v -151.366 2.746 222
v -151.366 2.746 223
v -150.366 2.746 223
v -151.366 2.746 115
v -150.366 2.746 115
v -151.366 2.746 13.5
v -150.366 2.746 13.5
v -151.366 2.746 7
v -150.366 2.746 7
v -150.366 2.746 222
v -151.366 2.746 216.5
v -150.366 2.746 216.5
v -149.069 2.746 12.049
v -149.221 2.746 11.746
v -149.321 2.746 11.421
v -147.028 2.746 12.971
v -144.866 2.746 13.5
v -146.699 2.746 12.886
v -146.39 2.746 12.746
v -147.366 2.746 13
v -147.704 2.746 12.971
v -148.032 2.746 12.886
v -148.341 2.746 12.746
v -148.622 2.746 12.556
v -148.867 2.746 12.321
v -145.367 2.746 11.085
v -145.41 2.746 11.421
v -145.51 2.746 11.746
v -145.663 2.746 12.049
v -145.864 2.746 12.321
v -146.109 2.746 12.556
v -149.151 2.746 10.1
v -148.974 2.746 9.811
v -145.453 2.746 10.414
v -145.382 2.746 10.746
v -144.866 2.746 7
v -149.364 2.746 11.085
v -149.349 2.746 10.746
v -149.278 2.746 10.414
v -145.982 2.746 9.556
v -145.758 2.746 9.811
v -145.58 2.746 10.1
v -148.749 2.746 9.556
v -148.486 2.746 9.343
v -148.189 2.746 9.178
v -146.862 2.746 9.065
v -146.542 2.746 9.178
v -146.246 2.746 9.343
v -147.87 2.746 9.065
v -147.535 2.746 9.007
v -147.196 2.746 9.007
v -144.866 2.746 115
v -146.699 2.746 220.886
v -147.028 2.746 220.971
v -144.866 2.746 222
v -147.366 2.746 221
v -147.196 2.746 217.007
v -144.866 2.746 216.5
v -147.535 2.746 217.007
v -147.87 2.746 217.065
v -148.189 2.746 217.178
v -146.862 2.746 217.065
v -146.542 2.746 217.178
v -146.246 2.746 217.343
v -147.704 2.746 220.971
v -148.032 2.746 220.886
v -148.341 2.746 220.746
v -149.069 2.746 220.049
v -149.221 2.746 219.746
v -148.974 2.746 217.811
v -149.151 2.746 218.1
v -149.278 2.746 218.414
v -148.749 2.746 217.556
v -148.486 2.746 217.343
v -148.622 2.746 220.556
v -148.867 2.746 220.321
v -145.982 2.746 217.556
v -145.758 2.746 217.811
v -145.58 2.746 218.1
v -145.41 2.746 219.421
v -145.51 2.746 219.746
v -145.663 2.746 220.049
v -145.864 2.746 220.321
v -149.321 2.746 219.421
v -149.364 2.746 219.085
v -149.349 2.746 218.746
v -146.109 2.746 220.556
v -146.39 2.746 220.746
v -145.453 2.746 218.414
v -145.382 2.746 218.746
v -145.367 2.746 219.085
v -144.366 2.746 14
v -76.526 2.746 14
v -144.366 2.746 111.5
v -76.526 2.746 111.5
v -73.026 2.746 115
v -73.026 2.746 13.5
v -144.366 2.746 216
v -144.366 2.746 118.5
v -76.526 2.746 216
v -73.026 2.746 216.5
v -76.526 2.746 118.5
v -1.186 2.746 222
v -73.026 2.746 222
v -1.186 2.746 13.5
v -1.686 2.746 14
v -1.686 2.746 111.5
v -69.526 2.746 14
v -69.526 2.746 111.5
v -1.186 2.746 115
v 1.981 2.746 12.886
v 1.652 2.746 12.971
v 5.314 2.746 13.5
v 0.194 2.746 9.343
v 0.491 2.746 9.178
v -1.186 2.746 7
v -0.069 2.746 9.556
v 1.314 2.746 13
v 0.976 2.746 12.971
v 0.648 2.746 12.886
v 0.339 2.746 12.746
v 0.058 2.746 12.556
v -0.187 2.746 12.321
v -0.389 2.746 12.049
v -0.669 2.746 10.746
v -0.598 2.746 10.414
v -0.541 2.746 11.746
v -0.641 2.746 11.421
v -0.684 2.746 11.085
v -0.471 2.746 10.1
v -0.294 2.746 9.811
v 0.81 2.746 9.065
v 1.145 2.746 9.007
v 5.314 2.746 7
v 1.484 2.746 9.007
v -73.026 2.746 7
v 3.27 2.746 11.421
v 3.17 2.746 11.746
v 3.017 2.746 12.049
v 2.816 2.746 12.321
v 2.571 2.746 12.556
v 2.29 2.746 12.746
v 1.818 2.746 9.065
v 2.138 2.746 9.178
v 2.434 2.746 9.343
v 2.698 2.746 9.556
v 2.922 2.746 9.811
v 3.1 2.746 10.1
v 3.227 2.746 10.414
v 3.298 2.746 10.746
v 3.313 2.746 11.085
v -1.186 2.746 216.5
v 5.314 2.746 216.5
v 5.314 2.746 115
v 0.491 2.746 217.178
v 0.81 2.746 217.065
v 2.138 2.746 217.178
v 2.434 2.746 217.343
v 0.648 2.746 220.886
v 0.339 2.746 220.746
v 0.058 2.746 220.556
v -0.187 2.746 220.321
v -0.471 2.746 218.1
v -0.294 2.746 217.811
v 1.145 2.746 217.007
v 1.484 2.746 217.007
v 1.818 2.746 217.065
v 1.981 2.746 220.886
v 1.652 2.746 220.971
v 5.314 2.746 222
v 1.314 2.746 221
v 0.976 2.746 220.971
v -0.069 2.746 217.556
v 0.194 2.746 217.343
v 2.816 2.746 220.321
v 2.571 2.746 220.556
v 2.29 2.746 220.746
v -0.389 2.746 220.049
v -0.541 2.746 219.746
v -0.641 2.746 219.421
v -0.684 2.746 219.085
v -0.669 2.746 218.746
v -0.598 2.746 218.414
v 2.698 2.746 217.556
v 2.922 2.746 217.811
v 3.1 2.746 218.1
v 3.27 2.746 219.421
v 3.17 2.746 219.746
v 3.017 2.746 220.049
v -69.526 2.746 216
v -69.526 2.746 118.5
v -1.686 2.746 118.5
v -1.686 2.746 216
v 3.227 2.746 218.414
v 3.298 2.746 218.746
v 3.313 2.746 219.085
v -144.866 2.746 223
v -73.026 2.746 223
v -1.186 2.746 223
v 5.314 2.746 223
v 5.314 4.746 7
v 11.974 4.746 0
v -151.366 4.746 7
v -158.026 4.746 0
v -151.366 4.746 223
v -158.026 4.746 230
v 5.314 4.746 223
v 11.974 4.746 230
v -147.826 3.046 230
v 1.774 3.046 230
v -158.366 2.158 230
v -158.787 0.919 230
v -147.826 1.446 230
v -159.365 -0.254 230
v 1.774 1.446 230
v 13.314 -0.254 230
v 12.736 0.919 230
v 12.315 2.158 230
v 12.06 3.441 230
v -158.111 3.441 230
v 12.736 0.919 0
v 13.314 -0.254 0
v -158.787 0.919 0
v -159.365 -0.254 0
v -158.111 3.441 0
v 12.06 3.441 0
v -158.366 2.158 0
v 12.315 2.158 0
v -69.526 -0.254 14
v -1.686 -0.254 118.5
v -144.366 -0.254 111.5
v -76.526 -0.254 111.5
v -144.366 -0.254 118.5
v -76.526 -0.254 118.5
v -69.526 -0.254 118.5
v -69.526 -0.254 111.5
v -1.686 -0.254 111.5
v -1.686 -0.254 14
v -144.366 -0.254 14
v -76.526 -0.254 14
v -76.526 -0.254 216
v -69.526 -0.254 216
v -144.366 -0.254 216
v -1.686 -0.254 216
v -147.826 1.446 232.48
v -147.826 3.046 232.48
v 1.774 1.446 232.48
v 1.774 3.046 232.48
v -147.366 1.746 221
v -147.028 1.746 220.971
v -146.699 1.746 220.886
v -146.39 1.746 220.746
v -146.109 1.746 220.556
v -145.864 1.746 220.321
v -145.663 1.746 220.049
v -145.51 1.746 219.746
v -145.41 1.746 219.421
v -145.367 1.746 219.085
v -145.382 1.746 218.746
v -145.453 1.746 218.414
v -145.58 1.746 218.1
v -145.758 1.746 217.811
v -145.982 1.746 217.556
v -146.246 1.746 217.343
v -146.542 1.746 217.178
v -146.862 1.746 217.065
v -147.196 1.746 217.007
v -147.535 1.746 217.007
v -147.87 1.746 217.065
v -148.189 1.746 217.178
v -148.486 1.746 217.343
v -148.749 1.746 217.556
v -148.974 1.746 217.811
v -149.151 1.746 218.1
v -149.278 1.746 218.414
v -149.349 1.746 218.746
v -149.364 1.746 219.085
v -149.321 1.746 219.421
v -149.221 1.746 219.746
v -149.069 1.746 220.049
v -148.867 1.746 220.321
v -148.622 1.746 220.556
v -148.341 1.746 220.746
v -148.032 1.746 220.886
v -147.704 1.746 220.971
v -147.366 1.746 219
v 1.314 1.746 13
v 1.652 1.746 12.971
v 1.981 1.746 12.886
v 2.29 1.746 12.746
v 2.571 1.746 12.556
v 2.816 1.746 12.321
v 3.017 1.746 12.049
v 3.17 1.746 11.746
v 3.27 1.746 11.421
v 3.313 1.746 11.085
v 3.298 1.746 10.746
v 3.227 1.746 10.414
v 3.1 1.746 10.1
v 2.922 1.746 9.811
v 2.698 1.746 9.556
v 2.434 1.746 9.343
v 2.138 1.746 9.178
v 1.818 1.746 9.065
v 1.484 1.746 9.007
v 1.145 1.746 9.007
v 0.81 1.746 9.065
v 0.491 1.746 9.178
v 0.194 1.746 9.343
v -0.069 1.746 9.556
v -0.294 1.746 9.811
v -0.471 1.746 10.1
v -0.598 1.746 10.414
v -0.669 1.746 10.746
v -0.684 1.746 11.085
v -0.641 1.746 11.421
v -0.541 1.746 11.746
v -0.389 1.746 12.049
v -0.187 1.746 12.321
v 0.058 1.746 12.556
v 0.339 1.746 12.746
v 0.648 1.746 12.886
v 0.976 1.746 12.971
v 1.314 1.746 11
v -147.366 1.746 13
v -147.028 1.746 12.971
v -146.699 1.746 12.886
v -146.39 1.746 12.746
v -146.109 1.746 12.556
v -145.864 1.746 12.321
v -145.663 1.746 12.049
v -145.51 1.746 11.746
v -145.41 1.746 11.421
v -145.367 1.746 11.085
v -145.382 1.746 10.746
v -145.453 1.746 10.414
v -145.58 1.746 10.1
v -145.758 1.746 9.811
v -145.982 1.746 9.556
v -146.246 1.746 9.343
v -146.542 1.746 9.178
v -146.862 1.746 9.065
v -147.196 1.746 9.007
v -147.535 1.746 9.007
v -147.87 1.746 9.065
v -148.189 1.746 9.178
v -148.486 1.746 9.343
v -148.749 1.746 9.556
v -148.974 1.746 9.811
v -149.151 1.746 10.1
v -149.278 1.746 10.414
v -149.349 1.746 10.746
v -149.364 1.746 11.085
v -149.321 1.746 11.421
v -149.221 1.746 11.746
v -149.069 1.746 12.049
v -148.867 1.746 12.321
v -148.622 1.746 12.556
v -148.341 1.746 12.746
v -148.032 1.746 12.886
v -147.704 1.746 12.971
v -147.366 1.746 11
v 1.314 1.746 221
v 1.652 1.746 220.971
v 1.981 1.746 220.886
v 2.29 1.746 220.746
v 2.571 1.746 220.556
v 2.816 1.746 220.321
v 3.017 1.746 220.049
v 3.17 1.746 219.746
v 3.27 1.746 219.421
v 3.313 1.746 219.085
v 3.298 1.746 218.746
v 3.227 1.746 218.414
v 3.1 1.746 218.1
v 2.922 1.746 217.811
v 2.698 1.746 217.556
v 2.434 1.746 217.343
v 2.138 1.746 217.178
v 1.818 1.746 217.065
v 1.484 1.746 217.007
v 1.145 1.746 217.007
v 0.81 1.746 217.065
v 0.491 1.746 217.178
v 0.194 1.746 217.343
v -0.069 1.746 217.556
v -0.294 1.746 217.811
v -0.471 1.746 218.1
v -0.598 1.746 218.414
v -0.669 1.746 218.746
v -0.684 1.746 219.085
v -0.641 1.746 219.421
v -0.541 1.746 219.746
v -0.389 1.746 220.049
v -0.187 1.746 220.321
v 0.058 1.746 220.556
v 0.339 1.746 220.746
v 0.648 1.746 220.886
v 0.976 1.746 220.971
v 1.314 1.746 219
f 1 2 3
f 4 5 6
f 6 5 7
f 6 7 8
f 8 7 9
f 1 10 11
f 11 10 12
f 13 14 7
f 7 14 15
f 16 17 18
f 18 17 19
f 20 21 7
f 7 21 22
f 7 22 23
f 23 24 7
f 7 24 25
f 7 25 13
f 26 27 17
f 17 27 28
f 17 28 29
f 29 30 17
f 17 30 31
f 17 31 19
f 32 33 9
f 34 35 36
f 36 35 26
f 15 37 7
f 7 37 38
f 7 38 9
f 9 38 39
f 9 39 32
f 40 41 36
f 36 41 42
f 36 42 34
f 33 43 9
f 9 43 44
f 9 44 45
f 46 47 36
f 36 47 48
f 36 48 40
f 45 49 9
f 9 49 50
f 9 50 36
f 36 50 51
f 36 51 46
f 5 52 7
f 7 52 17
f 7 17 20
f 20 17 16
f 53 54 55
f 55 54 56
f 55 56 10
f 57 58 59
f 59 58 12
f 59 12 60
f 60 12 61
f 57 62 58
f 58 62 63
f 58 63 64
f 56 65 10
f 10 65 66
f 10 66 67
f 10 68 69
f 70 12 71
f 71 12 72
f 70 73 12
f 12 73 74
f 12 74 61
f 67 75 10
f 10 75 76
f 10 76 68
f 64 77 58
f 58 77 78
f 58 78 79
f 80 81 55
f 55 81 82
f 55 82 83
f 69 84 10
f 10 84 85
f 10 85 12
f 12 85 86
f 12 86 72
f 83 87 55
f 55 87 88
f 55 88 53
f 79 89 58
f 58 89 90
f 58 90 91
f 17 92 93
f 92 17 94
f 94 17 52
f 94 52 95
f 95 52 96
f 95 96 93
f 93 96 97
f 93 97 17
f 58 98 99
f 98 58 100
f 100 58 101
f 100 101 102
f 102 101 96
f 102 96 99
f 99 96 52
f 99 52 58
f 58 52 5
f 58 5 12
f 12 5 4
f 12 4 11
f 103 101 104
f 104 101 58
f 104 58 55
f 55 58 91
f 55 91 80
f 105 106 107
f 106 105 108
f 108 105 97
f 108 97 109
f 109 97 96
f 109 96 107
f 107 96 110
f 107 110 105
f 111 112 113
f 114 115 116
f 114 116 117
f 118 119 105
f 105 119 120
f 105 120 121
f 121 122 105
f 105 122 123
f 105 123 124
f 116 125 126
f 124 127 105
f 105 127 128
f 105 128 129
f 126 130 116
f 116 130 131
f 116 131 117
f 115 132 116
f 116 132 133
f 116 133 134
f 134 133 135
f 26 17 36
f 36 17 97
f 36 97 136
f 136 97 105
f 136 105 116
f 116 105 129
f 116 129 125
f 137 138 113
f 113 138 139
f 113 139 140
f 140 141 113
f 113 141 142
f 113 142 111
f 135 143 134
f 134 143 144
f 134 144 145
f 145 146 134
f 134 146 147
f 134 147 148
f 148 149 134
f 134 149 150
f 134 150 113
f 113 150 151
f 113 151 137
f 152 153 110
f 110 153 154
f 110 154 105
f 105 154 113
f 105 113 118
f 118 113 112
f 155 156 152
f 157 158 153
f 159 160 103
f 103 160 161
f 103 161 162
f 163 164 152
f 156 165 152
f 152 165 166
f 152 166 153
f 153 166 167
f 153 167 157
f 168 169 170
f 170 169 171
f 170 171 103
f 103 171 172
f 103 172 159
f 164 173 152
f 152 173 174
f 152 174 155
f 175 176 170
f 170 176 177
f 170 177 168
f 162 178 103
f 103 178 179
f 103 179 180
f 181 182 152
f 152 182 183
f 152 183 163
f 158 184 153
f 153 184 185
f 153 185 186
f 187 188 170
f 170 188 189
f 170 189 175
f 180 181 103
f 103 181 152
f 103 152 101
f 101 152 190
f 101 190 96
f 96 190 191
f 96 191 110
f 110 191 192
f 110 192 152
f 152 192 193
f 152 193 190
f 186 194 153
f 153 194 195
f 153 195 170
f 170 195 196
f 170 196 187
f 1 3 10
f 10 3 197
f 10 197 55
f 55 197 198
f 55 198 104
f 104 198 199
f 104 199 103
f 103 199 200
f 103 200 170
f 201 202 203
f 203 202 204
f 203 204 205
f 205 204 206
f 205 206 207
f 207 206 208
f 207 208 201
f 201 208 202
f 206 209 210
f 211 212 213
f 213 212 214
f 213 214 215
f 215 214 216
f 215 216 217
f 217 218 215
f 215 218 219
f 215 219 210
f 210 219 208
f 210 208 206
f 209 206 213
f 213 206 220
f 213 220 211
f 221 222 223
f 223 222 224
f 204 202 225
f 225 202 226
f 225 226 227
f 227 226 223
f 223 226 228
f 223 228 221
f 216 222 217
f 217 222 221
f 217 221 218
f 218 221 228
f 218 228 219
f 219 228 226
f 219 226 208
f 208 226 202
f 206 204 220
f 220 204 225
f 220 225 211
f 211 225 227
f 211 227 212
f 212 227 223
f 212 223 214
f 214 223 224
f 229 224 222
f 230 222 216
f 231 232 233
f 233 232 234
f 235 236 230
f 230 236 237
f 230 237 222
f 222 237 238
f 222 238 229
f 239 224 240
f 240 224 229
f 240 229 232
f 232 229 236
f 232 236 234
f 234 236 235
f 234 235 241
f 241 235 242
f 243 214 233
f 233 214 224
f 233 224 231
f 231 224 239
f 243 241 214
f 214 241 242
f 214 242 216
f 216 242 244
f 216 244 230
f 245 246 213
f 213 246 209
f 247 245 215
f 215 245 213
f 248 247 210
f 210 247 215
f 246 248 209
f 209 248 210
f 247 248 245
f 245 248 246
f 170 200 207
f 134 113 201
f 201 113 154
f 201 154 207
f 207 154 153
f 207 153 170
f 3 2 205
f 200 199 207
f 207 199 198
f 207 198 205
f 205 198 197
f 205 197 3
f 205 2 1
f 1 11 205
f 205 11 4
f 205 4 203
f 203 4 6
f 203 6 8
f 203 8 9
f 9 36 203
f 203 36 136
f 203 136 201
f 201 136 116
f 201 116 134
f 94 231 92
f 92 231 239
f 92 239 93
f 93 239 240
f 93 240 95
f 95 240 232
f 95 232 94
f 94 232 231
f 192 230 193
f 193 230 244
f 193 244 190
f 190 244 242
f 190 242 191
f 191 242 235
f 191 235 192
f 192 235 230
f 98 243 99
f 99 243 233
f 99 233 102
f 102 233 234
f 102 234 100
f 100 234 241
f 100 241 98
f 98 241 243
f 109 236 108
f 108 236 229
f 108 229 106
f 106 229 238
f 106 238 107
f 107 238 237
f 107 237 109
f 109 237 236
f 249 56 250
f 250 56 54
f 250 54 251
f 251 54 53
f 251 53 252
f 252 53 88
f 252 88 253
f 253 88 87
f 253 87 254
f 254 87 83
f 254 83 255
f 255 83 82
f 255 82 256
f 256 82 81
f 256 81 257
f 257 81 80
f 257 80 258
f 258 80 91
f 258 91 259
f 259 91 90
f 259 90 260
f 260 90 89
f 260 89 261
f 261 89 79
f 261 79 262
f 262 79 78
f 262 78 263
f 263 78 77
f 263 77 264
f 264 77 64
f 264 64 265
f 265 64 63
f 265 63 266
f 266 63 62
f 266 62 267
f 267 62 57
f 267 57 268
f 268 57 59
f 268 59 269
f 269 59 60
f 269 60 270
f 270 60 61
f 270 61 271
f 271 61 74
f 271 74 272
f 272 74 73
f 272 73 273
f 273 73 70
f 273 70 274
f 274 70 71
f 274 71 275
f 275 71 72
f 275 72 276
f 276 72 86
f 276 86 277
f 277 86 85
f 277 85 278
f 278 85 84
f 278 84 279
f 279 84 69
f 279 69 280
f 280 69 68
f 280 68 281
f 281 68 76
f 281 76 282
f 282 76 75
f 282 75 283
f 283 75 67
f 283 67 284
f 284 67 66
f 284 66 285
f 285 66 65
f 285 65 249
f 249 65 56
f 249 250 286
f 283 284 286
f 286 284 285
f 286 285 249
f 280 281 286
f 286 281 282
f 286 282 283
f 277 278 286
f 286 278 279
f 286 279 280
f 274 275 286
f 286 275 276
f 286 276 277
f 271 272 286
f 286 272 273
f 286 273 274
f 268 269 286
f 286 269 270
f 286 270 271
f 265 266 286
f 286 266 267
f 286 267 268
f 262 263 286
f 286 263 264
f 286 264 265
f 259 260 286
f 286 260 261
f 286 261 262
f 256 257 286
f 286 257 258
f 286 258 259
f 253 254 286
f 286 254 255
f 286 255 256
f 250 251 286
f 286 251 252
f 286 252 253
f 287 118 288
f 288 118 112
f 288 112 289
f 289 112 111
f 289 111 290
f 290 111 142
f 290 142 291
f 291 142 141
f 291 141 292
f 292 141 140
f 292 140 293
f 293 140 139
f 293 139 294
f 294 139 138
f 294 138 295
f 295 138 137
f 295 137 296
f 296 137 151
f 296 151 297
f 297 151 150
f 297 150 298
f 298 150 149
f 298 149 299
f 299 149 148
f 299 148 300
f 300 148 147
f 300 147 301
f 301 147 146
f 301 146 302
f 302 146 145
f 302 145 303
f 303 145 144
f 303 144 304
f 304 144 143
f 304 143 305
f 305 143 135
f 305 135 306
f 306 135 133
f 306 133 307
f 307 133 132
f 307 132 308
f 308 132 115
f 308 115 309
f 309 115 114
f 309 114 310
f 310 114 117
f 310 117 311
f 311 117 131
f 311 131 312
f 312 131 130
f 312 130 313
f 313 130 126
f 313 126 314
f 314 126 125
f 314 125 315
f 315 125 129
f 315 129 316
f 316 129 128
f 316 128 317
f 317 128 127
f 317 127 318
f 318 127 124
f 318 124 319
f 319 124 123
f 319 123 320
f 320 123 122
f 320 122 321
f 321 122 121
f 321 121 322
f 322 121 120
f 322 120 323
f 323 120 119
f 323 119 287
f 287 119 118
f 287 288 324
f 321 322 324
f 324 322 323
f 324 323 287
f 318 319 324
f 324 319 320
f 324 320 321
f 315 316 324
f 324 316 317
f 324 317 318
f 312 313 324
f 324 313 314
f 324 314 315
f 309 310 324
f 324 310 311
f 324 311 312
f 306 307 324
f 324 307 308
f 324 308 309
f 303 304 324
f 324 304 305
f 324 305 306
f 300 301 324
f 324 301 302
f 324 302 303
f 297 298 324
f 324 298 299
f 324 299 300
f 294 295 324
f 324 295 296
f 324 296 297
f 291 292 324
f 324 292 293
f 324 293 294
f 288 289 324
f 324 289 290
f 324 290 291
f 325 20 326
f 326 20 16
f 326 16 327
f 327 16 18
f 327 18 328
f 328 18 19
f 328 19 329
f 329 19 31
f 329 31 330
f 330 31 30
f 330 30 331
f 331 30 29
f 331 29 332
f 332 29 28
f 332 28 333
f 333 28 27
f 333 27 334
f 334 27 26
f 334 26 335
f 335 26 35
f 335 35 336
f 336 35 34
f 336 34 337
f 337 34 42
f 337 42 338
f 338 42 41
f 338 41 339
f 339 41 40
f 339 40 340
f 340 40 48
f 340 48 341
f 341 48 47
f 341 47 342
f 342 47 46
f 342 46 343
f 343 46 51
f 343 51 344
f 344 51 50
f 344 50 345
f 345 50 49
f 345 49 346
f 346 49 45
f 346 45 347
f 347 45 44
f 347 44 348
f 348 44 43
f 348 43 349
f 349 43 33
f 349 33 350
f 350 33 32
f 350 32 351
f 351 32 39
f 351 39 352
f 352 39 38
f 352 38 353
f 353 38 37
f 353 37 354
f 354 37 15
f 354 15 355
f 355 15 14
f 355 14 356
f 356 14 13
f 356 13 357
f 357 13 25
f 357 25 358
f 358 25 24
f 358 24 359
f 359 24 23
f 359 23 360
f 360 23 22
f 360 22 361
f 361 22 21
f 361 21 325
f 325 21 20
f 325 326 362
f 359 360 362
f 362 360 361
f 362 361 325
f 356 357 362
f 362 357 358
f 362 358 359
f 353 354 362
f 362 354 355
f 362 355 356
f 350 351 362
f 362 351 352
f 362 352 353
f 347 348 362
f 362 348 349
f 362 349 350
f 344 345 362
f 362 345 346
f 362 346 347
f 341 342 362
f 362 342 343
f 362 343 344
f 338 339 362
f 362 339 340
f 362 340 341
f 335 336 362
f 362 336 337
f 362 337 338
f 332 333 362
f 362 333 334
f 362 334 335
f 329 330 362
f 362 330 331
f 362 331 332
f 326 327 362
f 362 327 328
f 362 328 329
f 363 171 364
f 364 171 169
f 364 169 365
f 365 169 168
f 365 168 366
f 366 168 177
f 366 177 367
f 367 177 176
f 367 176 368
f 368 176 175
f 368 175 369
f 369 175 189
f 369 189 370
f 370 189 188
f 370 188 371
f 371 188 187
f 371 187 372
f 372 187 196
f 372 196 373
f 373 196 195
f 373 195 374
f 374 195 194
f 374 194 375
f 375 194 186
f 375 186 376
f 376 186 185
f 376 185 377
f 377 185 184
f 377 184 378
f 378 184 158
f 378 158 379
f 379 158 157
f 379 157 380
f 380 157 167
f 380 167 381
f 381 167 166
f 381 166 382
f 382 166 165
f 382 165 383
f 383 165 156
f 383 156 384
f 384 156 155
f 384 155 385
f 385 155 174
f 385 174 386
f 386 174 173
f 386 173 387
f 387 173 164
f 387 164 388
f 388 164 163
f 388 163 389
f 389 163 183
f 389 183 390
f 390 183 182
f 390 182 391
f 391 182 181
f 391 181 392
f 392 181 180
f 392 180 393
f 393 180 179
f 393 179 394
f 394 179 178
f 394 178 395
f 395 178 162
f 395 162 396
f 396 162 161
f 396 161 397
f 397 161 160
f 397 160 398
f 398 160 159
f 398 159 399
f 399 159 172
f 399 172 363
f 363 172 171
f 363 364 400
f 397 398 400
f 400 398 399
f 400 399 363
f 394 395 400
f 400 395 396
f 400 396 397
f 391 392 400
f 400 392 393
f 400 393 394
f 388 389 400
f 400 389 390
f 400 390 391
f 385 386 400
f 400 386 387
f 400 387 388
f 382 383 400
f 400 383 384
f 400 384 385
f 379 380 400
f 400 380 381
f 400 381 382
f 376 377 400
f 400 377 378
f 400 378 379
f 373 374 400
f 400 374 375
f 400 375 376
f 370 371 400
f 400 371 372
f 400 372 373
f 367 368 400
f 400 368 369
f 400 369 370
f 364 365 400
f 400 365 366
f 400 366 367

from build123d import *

# Parameters (mm, degrees)
ESBO_O2_W                = 150
ESBO_O2_H                = 2
RESSALTO_EXTRUS_O1_DEPTH = 230
ESBO_O4_W                = 149.6
ESBO_O4_H                = 1.6
RESSALTO_EXTRUS_O2_DEPTH = 2.48
ESBO_O6_W                = 150
ESBO_O6_H                = 2
RESSALTO_EXTRUS_O4_DEPTH = 230
ESBO_O3_W                = 156.68
ESBO_O3_H                = 216
CORTE_EXTRUS_O6_DEPTH    = 2
ESBO_O8_W                = 67.84
ESBO_O8_H                = 97.5
CORTE_EXTRUS_O7_DEPTH    = 20
ESBO_O14_R               = 2
CORTE_EXTRUS_O9_DEPTH    = 1


with BuildPart() as part:
    # Esboço2 → Ressalto-extrusão1 (new body)
    with BuildSketch(Plane.XY):
        with BuildLine():
            Line((-158.025595127, 4.746007498), (11.974404873, 4.746007498))
            ThreePointArc((11.974404873, 4.746007498), (12.315146611, 2.157817047), (13.314150836, -0.253992502))
            Line((13.314150836, -0.253992502), (-159.365341089, -0.253992502))
            ThreePointArc((-159.365341089, -0.253992502), (-158.366336864, 2.157817047), (-158.025595127, 4.746007498))
        make_face()
        with Locations((-73.025595127, 2.246007498)):
            Rectangle(ESBO_O2_W, ESBO_O2_H, mode=Mode.SUBTRACT)
    extrude(amount=RESSALTO_EXTRUS_O1_DEPTH)



with BuildPart() as body_2:
    # Esboço4 → Ressalto-extrusão2 (new body)
    with BuildSketch(Plane.XY.offset(230)):
        with Locations((-73.025595127, 2.246007498)):
            Rectangle(ESBO_O4_W, ESBO_O4_H)
    extrude(amount=RESSALTO_EXTRUS_O2_DEPTH)


with BuildPart() as part_1:
    add(part.part)

    add(body_2.part)  # Ressalto-extrusão4 merges body 2
    # Esboço6 → Ressalto-extrusão4 (add)
    with BuildSketch(Plane(origin=(0, 0, 0), x_dir=(-1, 0, 0), z_dir=(0, 0, -1))):
        with Locations((73.025595127, 2.246007498)):
            Rectangle(ESBO_O6_W, ESBO_O6_H)
    extrude(amount=-RESSALTO_EXTRUS_O4_DEPTH)

    # Esboço3 → Corte-extrusão6 (cut)
    with BuildSketch(Plane.XZ.offset(-4.746007498)):
        with Locations((-73.025595127, 115)):
            Rectangle(ESBO_O3_W, ESBO_O3_H)
    extrude(amount=CORTE_EXTRUS_O6_DEPTH, mode=Mode.SUBTRACT)

    # Esboço8 → Corte-extrusão7 (cut)
    with BuildSketch(Plane(origin=(0, 2.746007498, 0), x_dir=(1, 0, 0), z_dir=(0, 1, 0))):
        with Locations((-110.445595127, -62.75)):
            Rectangle(ESBO_O8_W, ESBO_O8_H)
        with Locations((-35.605595127, -62.75)):
            Rectangle(ESBO_O8_W, ESBO_O8_H)
        with Locations((-110.445595127, -167.25)):
            Rectangle(ESBO_O8_W, ESBO_O8_H)
        with Locations((-35.605595127, -167.25)):
            Rectangle(ESBO_O8_W, ESBO_O8_H)
    extrude(amount=-CORTE_EXTRUS_O7_DEPTH, mode=Mode.SUBTRACT)

    # Esboço14 → Corte-extrusão9 (cut)
    with BuildSketch(Plane(origin=(0, 2.746007498, 0), x_dir=(1, 0, 0), z_dir=(0, 1, 0))):
        with Locations(Location((-147.365595127, -11, 0), (0, 0, 270))):
            Circle(ESBO_O14_R)
        with Locations(Location((1.314404873, -11, 0), (0, 0, 270))):
            Circle(ESBO_O14_R)
        with Locations(Location((-147.365595127, -219, 0), (0, 0, 270))):
            Circle(ESBO_O14_R)
        with Locations(Location((1.314404873, -219, 0), (0, 0, 270))):
            Circle(ESBO_O14_R)
    extrude(amount=-CORTE_EXTRUS_O9_DEPTH, mode=Mode.SUBTRACT)


solid = part_1.part
